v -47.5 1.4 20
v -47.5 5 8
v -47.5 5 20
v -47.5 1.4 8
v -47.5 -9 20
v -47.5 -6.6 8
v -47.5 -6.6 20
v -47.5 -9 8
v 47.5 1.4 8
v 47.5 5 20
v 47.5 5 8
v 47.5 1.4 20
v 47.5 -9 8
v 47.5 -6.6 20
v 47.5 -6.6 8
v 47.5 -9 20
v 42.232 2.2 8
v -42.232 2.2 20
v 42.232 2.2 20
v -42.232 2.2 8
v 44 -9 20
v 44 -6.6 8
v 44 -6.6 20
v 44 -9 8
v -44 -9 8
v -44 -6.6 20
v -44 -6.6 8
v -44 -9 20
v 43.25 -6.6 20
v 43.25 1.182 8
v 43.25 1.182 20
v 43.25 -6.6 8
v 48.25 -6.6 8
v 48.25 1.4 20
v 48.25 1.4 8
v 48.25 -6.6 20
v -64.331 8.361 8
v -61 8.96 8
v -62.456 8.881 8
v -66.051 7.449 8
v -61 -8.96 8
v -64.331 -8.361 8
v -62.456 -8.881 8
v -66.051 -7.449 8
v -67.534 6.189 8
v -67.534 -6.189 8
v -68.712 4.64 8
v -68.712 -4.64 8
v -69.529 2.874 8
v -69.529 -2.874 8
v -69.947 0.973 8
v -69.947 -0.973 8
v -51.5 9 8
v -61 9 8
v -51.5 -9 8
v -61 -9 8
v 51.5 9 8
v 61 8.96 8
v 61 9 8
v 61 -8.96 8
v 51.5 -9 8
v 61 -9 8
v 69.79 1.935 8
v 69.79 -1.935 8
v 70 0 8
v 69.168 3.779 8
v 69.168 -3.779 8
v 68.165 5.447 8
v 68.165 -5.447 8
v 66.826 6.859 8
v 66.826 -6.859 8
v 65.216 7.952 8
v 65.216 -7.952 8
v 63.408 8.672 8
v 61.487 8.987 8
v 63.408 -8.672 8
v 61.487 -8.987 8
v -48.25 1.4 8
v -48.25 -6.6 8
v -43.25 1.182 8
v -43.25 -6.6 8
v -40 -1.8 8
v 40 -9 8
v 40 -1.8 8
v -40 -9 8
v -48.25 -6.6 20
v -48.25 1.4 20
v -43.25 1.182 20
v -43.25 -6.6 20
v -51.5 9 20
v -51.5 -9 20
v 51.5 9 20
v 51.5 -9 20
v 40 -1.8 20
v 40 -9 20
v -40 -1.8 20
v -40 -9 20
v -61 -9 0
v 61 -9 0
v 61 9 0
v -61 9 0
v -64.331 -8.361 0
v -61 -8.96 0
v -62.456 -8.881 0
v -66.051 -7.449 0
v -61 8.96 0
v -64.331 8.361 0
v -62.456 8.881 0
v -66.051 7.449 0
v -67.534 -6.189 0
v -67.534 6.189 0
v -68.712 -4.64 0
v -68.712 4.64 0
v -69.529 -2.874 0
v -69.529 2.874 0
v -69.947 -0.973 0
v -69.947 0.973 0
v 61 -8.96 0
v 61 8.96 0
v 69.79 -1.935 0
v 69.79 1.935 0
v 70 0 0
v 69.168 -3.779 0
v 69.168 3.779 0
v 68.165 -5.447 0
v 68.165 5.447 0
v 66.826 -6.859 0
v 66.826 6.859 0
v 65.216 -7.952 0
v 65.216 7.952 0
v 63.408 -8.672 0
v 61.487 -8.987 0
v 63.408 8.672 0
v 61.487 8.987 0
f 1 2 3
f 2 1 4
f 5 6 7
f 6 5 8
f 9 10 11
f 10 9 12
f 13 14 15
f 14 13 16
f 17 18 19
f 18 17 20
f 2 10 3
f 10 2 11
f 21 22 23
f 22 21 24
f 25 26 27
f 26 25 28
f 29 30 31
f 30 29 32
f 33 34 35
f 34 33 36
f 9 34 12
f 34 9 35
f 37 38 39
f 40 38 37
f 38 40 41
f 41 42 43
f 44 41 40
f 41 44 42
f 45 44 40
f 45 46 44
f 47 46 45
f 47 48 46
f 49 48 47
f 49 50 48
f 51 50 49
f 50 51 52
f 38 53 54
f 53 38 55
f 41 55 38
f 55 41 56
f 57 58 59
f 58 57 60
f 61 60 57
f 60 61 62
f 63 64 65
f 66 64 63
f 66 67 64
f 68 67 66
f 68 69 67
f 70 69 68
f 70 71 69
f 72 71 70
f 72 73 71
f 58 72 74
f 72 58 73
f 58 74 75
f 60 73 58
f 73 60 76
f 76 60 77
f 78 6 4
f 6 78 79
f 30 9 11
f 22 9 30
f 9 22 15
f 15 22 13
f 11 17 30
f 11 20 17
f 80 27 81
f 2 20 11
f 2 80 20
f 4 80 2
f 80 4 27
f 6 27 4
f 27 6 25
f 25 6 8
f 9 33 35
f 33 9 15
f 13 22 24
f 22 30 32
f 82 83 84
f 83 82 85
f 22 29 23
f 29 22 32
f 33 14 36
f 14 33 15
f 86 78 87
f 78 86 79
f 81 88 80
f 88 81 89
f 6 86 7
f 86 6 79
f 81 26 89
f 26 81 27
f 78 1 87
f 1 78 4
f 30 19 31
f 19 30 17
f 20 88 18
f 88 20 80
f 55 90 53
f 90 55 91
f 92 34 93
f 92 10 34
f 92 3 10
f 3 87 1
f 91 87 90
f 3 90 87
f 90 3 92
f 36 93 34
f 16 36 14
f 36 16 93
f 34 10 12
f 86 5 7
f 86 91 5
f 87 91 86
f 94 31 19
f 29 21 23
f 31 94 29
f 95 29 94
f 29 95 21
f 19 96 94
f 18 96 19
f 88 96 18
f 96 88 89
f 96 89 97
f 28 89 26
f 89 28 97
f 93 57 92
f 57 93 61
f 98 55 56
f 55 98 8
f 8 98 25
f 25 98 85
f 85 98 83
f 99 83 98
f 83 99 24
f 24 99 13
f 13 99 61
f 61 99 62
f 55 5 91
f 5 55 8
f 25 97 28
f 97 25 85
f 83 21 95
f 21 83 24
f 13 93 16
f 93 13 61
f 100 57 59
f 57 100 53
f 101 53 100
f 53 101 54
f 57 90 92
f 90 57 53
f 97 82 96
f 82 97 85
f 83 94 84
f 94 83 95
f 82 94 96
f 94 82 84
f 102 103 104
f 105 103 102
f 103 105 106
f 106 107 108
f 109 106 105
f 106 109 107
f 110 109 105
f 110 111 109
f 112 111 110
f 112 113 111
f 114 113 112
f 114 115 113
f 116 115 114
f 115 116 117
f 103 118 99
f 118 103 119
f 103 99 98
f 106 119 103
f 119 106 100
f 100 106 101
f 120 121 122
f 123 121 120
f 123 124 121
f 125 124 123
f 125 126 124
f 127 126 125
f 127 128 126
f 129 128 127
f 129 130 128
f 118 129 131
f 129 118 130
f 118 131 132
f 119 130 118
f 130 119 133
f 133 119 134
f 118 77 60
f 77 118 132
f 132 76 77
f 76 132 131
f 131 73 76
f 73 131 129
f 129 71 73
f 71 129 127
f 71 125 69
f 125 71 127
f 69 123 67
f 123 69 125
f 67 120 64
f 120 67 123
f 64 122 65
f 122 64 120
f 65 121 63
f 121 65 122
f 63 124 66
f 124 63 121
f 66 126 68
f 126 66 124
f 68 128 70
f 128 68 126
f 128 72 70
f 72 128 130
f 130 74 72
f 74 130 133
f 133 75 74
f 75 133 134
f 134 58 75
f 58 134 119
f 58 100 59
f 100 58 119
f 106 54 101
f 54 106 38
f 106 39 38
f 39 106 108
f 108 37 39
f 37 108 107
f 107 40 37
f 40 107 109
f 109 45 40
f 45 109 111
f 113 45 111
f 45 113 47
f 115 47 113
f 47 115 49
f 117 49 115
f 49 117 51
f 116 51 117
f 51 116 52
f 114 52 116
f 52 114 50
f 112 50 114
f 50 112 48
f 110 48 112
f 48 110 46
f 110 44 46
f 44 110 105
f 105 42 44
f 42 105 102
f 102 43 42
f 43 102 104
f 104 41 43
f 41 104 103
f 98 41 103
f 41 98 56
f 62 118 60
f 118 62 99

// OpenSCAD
//variables, in mm
foot_width=140; //size of total object, width
foot_length=140;    //size of total object, length (y axis of printrbot)
leg_width=18;   //width of sticking-out-feet
frame_thick=2.8;  //thickness of metal printrbot frame
side_ledge=4;   //how much thickness on sides and inside

inside_width=88;    //space between metal walls, inside
outside_width=95;
corner_thick=(outside_width-inside_width)/2;
lip=12;         //how tall to make the part that slides over the metal sides
lift=8;         //how thick of a baseplate

rivet1_z=34.3;
rivet1_y=6.2;
rivet2_z=27.75;
rivet2_y=113.5;
rivet_r=4;
rivet_thick=5;

//intermediate values

side_xx=side_ledge*2+frame_thick;
inner_xx=inside_width+2*(frame_thick+side_ledge);

module rivet1()
{
    rotate([0,0,0])
    {
        cube([rivet_thick, rivet_r*2, lip*2], center=true);
    }
}


//baseplate
module base()
{
    linear_extrude(height=lift)

    union()
    {
        //legs
        square([foot_width-leg_width,leg_width],center=true);
        translate([foot_width/2-leg_width/2,0])
            {
            circle(r=leg_width/2,center=true);
            }
        translate([-1*(foot_width/2-leg_width/2),0])
            {
            circle(r=leg_width/2,center=true);
            }
    }
}
module lip()
{
    translate([0,0,lip/2+lift])
    {
        cube([outside_width+side_ledge*2,leg_width,lip],center=true);
    }
}

module interior()
{
    translate([0,-side_ledge*2-frame_thick,lip+lift])
    {
        cube([inside_width-side_ledge*2,leg_width,lip*2],center=true);
    }
}
module groove()
{
    //rear bit
    translate([0,leg_width/2-frame_thick/2-side_ledge,lip])
    {
        cube([outside_width,frame_thick,lip*2],center=true);
    }
    //sides
    translate([inside_width/2+corner_thick/2,-side_ledge,lip])
    {
        cube([corner_thick,leg_width,lip*2],center=true);
    }
    //sides
    translate([-inside_width/2-corner_thick/2,-side_ledge,lip])
    {
        cube([corner_thick,leg_width,lip*2],center=true);
    }
    translate([inside_width/2+corner_thick/2,leg_width/2-side_ledge-frame_thick/2-rivet1_y,lift+lip])
{
    rivet1();
    }
    translate([-inside_width/2-corner_thick/2,leg_width/2-side_ledge-frame_thick/2-rivet1_y,lift+lip])
    {
        rivet1();
    }
}
module inside_corner()
{
    translate([inside_width/2,leg_width/2-side_ledge-frame_thick,lip+lift/2])
    {
        rotate([0,0,45])
        {
            cube([rivet_thick/2,rivet_thick/2,lip*2],center=true);
        }
    }
    translate([-inside_width/2,leg_width/2-side_ledge-frame_thick,lip+lift/2])
    {
        rotate([0,0,45])
        {
            cube([rivet_thick/2,rivet_thick/2,lip*2],center=true);
        }
    }
}
union()
{
    base();
    difference()
    {
        lip();
        groove();
        interior();
        inside_corner();
    }
}
